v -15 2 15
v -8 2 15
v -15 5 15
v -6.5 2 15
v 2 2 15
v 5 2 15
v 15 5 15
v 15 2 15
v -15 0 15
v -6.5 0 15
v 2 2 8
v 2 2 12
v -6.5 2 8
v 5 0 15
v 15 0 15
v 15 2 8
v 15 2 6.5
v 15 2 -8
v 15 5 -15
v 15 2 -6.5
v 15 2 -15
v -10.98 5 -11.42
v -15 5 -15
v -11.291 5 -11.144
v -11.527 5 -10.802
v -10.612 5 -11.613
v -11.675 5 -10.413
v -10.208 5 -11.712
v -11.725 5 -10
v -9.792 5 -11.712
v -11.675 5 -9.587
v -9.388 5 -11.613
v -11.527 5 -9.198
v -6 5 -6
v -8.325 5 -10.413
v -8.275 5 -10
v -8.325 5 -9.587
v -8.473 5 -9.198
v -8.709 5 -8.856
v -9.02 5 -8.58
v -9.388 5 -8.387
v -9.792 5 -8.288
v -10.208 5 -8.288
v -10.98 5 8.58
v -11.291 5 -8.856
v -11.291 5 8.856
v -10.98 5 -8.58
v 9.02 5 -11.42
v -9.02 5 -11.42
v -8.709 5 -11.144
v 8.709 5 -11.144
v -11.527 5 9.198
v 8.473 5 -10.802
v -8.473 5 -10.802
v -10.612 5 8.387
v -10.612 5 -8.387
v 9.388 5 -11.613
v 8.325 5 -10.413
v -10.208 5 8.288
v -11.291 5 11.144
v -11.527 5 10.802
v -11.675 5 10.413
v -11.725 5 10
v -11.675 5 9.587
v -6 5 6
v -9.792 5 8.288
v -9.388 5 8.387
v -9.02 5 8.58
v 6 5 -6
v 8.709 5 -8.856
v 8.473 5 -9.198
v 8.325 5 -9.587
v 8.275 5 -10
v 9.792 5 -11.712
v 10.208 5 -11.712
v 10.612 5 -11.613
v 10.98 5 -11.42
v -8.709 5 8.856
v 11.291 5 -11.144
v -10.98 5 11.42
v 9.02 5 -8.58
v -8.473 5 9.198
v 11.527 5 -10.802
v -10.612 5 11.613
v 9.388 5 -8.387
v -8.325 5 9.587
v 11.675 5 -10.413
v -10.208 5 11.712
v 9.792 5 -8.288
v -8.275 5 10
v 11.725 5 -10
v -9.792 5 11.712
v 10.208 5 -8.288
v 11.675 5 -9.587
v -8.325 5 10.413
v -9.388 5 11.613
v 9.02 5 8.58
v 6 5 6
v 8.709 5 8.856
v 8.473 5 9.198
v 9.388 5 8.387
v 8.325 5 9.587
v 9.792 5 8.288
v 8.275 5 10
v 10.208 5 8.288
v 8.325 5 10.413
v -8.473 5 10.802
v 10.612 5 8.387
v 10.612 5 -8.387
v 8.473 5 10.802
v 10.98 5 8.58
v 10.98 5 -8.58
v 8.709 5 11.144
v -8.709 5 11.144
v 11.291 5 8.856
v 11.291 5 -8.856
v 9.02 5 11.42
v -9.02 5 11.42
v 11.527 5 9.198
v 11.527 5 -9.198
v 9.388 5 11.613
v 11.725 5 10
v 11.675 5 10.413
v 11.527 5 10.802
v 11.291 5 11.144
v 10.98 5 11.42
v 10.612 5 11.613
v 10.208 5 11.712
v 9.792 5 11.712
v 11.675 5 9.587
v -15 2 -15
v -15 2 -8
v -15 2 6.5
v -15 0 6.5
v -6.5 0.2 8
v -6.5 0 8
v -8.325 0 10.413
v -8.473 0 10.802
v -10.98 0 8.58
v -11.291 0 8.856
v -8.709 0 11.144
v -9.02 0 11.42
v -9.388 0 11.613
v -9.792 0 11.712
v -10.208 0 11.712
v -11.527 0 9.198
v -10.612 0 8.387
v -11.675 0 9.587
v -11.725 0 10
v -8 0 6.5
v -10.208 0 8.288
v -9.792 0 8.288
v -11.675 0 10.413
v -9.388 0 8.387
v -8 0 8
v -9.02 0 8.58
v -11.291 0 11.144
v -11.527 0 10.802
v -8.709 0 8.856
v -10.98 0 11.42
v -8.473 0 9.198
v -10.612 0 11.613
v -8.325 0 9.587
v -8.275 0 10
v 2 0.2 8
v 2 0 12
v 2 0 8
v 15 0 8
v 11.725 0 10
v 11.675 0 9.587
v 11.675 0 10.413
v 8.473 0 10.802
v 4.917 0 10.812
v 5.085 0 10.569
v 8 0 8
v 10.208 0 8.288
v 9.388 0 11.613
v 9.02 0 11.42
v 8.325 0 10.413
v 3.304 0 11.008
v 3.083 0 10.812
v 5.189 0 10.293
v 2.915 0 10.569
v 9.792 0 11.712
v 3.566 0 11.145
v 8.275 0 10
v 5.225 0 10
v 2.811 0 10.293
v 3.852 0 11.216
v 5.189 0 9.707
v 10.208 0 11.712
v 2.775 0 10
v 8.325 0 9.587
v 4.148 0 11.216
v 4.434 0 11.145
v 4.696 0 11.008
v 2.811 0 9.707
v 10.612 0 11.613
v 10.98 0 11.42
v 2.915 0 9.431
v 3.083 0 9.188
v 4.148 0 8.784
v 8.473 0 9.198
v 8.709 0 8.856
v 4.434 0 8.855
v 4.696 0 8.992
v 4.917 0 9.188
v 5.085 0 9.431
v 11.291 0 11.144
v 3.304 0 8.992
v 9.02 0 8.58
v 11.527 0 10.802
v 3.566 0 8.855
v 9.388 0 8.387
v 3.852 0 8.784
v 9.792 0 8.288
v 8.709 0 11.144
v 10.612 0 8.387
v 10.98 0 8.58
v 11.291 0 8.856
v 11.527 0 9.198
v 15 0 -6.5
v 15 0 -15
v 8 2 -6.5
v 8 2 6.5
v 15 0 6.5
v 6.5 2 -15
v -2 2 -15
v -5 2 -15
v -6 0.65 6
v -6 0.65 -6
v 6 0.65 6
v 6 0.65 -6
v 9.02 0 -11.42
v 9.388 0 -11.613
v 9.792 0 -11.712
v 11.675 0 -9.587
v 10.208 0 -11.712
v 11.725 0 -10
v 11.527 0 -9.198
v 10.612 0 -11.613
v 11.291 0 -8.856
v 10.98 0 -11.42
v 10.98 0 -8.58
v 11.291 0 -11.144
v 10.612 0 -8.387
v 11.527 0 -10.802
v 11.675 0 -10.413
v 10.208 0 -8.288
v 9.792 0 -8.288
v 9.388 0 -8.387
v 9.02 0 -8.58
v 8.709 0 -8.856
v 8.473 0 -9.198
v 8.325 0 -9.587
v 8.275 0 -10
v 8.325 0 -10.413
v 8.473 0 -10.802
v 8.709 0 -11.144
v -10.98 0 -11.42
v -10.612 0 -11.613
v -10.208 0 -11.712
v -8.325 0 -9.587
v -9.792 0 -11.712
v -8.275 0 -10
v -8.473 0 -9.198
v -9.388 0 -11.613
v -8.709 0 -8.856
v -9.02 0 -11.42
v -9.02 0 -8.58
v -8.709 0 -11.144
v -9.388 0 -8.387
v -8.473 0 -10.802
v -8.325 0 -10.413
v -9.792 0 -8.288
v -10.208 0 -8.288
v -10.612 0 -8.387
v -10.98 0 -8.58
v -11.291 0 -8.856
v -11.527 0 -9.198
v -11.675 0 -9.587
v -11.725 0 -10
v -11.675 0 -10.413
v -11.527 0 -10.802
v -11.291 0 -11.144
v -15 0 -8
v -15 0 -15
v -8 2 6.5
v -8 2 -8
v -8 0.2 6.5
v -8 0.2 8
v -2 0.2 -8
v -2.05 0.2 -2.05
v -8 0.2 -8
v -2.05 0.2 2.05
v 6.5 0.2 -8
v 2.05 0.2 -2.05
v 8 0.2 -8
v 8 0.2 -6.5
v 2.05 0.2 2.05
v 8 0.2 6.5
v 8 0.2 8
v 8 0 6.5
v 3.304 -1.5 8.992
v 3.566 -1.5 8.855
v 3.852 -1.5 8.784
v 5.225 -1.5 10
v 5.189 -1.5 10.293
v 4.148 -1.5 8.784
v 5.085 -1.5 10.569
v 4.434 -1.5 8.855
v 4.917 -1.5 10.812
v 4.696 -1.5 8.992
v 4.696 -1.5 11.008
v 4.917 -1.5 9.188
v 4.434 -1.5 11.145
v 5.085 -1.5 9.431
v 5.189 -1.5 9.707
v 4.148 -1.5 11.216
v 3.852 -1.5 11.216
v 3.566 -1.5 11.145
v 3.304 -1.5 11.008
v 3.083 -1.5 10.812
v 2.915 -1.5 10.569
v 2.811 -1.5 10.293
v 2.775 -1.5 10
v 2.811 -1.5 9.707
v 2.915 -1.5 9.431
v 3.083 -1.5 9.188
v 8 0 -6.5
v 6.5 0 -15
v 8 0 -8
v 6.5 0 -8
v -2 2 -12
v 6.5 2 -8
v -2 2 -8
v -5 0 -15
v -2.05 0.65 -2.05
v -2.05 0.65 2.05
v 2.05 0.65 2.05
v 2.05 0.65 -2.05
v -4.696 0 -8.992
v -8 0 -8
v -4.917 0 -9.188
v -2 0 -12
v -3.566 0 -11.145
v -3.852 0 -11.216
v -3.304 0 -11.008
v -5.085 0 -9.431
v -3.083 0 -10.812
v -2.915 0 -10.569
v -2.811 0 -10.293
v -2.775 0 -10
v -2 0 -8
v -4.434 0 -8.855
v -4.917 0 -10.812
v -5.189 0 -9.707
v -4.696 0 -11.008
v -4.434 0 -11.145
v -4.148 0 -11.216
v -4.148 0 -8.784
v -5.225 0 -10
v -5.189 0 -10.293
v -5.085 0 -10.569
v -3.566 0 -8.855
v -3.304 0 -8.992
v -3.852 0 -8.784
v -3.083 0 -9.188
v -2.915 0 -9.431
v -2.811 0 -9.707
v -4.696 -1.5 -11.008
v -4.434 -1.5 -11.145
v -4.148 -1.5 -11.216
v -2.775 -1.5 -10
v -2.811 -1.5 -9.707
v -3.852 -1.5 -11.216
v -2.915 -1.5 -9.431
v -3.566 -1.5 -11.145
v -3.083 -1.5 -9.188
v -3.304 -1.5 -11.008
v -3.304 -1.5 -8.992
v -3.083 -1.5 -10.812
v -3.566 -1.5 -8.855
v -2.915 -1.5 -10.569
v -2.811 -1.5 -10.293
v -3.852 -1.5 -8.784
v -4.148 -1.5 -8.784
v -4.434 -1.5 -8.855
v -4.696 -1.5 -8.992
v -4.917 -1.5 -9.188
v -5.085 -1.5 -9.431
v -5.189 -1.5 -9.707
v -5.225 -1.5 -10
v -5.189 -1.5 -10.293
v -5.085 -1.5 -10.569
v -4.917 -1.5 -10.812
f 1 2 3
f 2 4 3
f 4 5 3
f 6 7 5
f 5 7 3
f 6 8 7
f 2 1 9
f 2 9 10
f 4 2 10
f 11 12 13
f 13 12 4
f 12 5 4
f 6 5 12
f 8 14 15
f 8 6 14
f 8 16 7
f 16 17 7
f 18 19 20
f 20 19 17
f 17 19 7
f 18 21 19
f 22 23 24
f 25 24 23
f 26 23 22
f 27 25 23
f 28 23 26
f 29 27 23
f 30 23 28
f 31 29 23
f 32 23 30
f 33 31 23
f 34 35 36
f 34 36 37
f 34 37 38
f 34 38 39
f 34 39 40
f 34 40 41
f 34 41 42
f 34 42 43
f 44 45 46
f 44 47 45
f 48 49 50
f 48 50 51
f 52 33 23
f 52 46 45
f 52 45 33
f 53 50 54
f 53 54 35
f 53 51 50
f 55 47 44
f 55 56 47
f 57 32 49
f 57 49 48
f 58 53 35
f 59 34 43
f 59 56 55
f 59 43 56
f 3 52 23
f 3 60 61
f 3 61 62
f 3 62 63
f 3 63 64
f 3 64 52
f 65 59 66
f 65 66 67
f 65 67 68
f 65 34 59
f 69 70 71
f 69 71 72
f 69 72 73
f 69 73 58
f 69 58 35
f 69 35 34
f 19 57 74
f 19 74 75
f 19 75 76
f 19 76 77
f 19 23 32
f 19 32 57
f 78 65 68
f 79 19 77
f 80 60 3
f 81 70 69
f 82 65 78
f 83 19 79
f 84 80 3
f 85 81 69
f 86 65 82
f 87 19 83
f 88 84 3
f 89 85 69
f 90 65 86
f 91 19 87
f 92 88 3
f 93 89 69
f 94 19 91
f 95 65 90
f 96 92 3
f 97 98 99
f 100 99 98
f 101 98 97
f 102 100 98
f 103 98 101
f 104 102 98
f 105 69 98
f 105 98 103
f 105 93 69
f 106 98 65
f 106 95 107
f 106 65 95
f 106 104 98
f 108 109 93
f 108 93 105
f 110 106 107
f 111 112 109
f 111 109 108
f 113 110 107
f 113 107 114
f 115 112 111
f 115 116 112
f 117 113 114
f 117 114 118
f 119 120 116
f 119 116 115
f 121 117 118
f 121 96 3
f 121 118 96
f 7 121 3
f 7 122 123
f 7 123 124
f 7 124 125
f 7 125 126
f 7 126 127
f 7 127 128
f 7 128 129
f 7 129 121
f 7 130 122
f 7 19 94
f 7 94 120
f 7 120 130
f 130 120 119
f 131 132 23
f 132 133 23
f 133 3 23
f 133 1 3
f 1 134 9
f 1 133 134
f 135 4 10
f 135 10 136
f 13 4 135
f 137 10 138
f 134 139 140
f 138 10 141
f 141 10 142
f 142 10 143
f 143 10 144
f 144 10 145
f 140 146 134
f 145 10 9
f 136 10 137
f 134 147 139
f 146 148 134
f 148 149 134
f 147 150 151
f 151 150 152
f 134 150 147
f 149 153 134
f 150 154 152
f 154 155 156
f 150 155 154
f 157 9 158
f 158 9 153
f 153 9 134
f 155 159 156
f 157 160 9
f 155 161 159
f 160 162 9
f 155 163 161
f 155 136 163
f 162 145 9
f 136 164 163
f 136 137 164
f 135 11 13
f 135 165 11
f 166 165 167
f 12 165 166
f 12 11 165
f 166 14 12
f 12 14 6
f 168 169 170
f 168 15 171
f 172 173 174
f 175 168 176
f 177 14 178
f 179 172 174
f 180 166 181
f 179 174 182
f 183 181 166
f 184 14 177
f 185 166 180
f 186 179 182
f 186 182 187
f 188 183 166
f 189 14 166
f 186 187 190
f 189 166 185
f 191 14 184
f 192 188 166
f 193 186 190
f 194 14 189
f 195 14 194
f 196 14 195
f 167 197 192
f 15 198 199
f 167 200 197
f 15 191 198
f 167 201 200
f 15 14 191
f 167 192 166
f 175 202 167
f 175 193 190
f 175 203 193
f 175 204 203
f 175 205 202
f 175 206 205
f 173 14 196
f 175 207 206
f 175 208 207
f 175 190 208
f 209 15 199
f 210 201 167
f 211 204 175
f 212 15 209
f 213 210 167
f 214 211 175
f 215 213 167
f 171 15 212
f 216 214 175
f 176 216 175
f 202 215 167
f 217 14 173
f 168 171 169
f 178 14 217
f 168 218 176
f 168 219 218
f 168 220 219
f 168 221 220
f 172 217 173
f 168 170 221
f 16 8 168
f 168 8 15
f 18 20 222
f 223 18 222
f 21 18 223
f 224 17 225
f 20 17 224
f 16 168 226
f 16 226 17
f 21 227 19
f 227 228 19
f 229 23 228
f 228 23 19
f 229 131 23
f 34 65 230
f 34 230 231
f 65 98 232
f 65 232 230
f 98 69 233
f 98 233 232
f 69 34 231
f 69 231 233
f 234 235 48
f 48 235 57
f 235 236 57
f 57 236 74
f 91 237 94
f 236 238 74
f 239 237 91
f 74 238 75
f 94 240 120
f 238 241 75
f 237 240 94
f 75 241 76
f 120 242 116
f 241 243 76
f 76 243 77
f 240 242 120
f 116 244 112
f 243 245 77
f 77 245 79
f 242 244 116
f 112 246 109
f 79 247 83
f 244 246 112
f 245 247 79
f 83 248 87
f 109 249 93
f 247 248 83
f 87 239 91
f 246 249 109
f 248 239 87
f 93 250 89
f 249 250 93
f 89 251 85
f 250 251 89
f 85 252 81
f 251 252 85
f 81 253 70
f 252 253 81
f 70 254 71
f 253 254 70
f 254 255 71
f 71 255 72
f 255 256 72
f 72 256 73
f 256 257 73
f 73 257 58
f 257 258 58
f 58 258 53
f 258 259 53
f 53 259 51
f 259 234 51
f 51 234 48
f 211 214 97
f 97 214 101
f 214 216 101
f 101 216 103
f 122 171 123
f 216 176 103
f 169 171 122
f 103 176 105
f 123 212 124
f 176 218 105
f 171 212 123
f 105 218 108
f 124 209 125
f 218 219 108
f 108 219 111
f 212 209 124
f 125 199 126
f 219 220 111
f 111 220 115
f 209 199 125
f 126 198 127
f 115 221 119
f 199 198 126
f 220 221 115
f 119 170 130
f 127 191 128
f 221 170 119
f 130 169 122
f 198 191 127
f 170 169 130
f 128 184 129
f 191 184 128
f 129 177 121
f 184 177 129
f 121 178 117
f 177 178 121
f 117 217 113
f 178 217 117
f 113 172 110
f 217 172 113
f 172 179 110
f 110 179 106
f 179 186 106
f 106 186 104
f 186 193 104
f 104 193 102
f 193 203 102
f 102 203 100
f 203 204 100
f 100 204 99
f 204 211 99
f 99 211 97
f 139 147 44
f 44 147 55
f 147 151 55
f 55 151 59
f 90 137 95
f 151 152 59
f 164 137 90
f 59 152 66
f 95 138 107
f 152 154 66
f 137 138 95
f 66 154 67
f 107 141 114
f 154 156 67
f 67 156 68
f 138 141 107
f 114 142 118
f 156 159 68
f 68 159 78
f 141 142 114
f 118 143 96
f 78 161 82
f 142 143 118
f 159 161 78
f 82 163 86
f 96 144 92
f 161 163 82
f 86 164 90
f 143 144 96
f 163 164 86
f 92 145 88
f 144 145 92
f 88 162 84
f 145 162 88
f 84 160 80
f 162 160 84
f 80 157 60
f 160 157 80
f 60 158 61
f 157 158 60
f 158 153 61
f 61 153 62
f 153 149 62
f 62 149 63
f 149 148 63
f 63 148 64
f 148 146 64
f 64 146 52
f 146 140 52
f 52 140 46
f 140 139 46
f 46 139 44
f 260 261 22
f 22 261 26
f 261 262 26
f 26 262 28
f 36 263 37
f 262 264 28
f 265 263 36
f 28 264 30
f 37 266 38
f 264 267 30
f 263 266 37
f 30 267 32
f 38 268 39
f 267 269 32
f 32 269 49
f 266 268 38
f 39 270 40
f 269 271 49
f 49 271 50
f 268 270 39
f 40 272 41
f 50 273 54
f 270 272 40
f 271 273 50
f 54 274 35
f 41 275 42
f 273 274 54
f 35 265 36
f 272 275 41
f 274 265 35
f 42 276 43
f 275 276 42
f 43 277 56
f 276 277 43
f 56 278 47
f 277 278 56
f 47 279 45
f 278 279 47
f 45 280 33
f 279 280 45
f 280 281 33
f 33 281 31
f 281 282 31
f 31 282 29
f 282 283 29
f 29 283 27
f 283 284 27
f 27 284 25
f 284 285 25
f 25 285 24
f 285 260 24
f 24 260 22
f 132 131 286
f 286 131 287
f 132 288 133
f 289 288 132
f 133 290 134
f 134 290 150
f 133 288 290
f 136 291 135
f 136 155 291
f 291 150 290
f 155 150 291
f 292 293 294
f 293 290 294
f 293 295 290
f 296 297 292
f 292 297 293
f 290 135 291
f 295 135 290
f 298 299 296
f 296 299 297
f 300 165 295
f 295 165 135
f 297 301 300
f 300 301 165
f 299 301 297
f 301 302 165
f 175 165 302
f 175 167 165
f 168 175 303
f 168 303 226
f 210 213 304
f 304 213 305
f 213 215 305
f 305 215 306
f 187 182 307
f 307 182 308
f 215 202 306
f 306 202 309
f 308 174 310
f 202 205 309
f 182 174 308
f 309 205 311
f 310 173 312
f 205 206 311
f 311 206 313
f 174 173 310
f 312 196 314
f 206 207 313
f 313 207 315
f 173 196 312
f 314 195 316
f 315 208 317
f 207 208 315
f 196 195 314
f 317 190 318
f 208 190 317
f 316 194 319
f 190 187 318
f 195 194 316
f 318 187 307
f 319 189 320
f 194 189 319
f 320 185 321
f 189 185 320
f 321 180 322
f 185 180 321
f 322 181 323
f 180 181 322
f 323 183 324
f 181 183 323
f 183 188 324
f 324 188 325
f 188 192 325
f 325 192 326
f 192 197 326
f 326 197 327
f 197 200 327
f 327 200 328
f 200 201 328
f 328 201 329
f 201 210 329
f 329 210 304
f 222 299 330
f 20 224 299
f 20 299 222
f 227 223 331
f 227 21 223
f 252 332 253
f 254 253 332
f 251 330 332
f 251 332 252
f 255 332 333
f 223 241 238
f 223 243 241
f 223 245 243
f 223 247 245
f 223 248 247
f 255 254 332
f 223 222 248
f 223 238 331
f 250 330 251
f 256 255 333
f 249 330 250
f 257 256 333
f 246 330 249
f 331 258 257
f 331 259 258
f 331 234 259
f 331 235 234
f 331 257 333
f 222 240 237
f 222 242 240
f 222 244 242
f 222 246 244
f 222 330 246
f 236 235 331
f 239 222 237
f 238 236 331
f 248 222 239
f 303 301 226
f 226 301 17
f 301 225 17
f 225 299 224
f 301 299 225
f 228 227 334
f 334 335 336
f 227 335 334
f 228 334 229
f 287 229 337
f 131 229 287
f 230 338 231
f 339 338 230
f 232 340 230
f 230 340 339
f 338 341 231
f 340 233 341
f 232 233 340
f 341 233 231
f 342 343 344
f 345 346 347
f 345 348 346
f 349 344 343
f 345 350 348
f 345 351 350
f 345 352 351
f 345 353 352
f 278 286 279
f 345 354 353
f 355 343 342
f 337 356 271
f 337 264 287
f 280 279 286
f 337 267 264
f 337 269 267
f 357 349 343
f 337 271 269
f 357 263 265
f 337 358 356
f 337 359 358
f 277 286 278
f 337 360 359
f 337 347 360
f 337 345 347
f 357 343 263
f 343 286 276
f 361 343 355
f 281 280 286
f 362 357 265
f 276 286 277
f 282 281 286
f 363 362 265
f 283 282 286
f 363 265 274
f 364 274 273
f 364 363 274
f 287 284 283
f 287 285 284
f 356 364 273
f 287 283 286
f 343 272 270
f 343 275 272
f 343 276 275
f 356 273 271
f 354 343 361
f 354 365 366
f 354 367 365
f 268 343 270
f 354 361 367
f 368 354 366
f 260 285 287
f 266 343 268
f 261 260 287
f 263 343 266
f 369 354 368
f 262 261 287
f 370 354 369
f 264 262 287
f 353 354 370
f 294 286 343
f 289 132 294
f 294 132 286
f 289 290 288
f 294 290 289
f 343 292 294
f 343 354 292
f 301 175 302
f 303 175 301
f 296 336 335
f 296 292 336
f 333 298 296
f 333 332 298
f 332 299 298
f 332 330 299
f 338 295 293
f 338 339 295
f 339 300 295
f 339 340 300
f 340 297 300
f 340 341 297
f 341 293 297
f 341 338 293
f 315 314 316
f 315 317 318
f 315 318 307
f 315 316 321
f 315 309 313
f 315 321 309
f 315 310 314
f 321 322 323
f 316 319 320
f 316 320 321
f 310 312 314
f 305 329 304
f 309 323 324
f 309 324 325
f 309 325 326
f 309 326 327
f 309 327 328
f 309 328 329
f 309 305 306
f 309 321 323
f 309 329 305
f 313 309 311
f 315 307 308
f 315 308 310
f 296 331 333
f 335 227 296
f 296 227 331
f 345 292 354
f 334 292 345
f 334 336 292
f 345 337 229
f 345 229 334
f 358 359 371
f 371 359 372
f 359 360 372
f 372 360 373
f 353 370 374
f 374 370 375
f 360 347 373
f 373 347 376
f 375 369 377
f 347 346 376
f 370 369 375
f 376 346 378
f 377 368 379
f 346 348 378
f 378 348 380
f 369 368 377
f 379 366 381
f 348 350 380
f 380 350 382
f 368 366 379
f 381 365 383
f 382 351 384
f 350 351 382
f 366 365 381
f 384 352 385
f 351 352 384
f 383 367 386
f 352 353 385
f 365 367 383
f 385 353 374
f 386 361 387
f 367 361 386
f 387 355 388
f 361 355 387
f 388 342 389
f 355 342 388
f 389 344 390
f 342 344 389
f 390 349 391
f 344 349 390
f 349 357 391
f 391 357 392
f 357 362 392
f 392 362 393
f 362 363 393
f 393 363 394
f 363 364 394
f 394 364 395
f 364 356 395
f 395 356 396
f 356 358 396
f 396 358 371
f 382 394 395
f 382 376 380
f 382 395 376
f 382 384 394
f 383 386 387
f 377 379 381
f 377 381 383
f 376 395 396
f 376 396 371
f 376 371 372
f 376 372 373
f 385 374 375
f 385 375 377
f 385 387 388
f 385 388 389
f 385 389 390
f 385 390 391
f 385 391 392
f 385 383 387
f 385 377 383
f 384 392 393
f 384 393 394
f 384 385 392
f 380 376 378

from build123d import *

# Parameters (mm, degrees)
SKETCH_W        = 30
SKETCH_H        = 30
PAD_DEPTH       = 5
SKETCH001_W     = 7
SKETCH001_H     = 23
SKETCH001_W_2   = 23
SKETCH001_H_2   = 7
SKETCH001_H_3   = 16
SKETCH001_W_3   = 30
POCKET_DEPTH    = 2
SKETCH002_W     = 13
SKETCH002_H     = 7
PAD001_DEPTH    = 2
SKETCH003_R     = 1.725
POCKET001_DEPTH = 5.001
SKETCH004_R     = 1.225
PAD002_DEPTH    = 1.5
SKETCH005_W     = 7
SKETCH005_H     = 2
PAD003_DEPTH    = 1.5
SKETCH006_W     = 4.1
SKETCH006_H     = 4.1
POCKET002_DEPTH = 5
PAD004_DEPTH    = 2
SKETCH008_R     = 1.725
POCKET003_DEPTH = 5.001
PAD005_DEPTH    = 2
SKETCH010_R     = 1.725
POCKET004_DEPTH = 5.001
POCKET005_DEPTH = 2
SKETCH012_W     = 13
SKETCH012_H     = 7
PAD006_DEPTH    = 2
SKETCH013_R     = 1.725
POCKET006_DEPTH = 5.001
SKETCH014_R     = 1.225
PAD007_DEPTH    = 1.5
POCKET007_DEPTH = 2
SKETCH016_W     = 12
SKETCH016_H     = 12
POCKET008_DEPTH = 4.35
SKETCH017_W     = 16
SKETCH017_H     = 16
POCKET009_DEPTH = 0.2


with BuildPart() as part:
    # Sketch → Pad (new body)
    with BuildSketch(Plane.XZ):
        Rectangle(SKETCH_W, SKETCH_H)
    extrude(amount=-PAD_DEPTH)

    # Sketch001 (on Face5 of Pad) → Pocket (cut)
    with BuildSketch(Plane.XZ):
        with Locations((-11.5, 3.5)):
            Rectangle(SKETCH001_W, SKETCH001_H)
        with Locations((3.5, 11.5)):
            Rectangle(SKETCH001_W_2, SKETCH001_H_2)
        with Locations((11.5, 0)):
            Rectangle(SKETCH001_W, SKETCH001_H_3)
        with Locations((0, -11.5)):
            Rectangle(SKETCH001_W_3, SKETCH001_H_2)
    extrude(amount=-POCKET_DEPTH, mode=Mode.SUBTRACT)

    # Sketch002 (on Face2 of Pocket) → Pad001 (join)
    with BuildSketch(Plane.XZ.offset(-2)):
        with Locations((8.5, 11.5)):
            Rectangle(SKETCH002_W, SKETCH002_H)
    extrude(amount=PAD001_DEPTH)

    # Sketch003 (on Face15 of Pad001) → Pocket001 (cut, through all)
    with BuildSketch(Plane.XZ):
        with Locations((10, 10)):
            Circle(SKETCH003_R)
    extrude(amount=-POCKET001_DEPTH, mode=Mode.SUBTRACT)

    # Sketch004 (on Face15 of Pocket001) → Pad002 (join)
    with BuildSketch(Plane.XZ):
        with Locations((4, 10)):
            Circle(SKETCH004_R)
    extrude(amount=PAD002_DEPTH)

    # Sketch005 (on Face7 of Pad002) → Pad003 (join)
    with BuildSketch(Plane(origin=(0, 0, 8), x_dir=(1, 0, 0), z_dir=(0, 0, -1))):
        with Locations((11.5, -1)):
            Rectangle(SKETCH005_W, SKETCH005_H)
    extrude(amount=PAD003_DEPTH)

    # Sketch006 (on Face5 of Pad003) → Pocket002 (cut)
    with BuildSketch(Plane(origin=(0, 5, 0), x_dir=(1, 0, 0), z_dir=(0, 1, 0))):
        Rectangle(SKETCH006_W, SKETCH006_H)
    extrude(amount=-POCKET002_DEPTH, mode=Mode.SUBTRACT)

    # Sketch007 (on Face2 of Pocket002) → Pad004 (join)
    with BuildSketch(Plane.XZ.offset(-2)):
        Polygon((6.5, -15), (15, -15), (15, -6.5), (8, -6.5), (8, -8), (6.5, -8), align=None)
    extrude(amount=PAD004_DEPTH)

    # Sketch008 (on Face24 of Pad004) → Pocket003 (cut, through all)
    with BuildSketch(Plane.XZ):
        with Locations((10, -10)):
            Circle(SKETCH008_R)
    extrude(amount=-POCKET003_DEPTH, mode=Mode.SUBTRACT)

    # Sketch009 (on Face2 of Pocket003) → Pad005 (join)
    with BuildSketch(Plane.XZ.offset(-2)):
        Polygon((-15, 15), (-6.5, 15), (-6.5, 8), (-8, 8), (-8, 6.5), (-15, 6.5), align=None)
    extrude(amount=PAD005_DEPTH)

    # Sketch010 (on Face10 of Pad005) → Pocket004 (cut, through all)
    with BuildSketch(Plane.XZ):
        with Locations((-10, 10)):
            Circle(SKETCH010_R)
    extrude(amount=-POCKET004_DEPTH, mode=Mode.SUBTRACT)

    # Sketch011 (on Face14 of Pocket004) → Pocket005 (cut)
    with BuildSketch(Plane.XZ):
        Polygon((2, 15), (2, 12), (5, 15), align=None)
    extrude(amount=-POCKET005_DEPTH, mode=Mode.SUBTRACT)

    # Sketch012 (on Face28 of Pocket005) → Pad006 (join)
    with BuildSketch(Plane.XZ.offset(-2)):
        with Locations((-8.5, -11.5)):
            Rectangle(SKETCH012_W, SKETCH012_H)
    extrude(amount=PAD006_DEPTH)

    # Sketch013 (on Face42 of Pad006) → Pocket006 (cut, through all)
    with BuildSketch(Plane.XZ):
        with Locations((-10, -10)):
            Circle(SKETCH013_R)
    extrude(amount=-POCKET006_DEPTH, mode=Mode.SUBTRACT)

    # Sketch014 (on Face42 of Pocket006) → Pad007 (join)
    with BuildSketch(Plane.XZ):
        with Locations((-4, -10)):
            Circle(SKETCH014_R)
    extrude(amount=PAD007_DEPTH)

    # Sketch015 (on Face42 of Pad007) → Pocket007 (cut)
    with BuildSketch(Plane.XZ):
        Polygon((-2, -15), (-2, -12), (-5, -15), align=None)
    extrude(amount=-POCKET007_DEPTH, mode=Mode.SUBTRACT)

    # Sketch016 (on Face7 of Pocket007) → Pocket008 (cut)
    with BuildSketch(Plane(origin=(0, 5, 0), x_dir=(1, 0, 0), z_dir=(0, 1, 0))):
        Rectangle(SKETCH016_W, SKETCH016_H)
    extrude(amount=-POCKET008_DEPTH, mode=Mode.SUBTRACT)

    # Sketch017 (on Face32 of Pocket008) → Pocket009 (cut)
    with BuildSketch(Plane.XZ):
        Rectangle(SKETCH017_W, SKETCH017_H)
    extrude(amount=-POCKET009_DEPTH, mode=Mode.SUBTRACT)


solid = part.part
